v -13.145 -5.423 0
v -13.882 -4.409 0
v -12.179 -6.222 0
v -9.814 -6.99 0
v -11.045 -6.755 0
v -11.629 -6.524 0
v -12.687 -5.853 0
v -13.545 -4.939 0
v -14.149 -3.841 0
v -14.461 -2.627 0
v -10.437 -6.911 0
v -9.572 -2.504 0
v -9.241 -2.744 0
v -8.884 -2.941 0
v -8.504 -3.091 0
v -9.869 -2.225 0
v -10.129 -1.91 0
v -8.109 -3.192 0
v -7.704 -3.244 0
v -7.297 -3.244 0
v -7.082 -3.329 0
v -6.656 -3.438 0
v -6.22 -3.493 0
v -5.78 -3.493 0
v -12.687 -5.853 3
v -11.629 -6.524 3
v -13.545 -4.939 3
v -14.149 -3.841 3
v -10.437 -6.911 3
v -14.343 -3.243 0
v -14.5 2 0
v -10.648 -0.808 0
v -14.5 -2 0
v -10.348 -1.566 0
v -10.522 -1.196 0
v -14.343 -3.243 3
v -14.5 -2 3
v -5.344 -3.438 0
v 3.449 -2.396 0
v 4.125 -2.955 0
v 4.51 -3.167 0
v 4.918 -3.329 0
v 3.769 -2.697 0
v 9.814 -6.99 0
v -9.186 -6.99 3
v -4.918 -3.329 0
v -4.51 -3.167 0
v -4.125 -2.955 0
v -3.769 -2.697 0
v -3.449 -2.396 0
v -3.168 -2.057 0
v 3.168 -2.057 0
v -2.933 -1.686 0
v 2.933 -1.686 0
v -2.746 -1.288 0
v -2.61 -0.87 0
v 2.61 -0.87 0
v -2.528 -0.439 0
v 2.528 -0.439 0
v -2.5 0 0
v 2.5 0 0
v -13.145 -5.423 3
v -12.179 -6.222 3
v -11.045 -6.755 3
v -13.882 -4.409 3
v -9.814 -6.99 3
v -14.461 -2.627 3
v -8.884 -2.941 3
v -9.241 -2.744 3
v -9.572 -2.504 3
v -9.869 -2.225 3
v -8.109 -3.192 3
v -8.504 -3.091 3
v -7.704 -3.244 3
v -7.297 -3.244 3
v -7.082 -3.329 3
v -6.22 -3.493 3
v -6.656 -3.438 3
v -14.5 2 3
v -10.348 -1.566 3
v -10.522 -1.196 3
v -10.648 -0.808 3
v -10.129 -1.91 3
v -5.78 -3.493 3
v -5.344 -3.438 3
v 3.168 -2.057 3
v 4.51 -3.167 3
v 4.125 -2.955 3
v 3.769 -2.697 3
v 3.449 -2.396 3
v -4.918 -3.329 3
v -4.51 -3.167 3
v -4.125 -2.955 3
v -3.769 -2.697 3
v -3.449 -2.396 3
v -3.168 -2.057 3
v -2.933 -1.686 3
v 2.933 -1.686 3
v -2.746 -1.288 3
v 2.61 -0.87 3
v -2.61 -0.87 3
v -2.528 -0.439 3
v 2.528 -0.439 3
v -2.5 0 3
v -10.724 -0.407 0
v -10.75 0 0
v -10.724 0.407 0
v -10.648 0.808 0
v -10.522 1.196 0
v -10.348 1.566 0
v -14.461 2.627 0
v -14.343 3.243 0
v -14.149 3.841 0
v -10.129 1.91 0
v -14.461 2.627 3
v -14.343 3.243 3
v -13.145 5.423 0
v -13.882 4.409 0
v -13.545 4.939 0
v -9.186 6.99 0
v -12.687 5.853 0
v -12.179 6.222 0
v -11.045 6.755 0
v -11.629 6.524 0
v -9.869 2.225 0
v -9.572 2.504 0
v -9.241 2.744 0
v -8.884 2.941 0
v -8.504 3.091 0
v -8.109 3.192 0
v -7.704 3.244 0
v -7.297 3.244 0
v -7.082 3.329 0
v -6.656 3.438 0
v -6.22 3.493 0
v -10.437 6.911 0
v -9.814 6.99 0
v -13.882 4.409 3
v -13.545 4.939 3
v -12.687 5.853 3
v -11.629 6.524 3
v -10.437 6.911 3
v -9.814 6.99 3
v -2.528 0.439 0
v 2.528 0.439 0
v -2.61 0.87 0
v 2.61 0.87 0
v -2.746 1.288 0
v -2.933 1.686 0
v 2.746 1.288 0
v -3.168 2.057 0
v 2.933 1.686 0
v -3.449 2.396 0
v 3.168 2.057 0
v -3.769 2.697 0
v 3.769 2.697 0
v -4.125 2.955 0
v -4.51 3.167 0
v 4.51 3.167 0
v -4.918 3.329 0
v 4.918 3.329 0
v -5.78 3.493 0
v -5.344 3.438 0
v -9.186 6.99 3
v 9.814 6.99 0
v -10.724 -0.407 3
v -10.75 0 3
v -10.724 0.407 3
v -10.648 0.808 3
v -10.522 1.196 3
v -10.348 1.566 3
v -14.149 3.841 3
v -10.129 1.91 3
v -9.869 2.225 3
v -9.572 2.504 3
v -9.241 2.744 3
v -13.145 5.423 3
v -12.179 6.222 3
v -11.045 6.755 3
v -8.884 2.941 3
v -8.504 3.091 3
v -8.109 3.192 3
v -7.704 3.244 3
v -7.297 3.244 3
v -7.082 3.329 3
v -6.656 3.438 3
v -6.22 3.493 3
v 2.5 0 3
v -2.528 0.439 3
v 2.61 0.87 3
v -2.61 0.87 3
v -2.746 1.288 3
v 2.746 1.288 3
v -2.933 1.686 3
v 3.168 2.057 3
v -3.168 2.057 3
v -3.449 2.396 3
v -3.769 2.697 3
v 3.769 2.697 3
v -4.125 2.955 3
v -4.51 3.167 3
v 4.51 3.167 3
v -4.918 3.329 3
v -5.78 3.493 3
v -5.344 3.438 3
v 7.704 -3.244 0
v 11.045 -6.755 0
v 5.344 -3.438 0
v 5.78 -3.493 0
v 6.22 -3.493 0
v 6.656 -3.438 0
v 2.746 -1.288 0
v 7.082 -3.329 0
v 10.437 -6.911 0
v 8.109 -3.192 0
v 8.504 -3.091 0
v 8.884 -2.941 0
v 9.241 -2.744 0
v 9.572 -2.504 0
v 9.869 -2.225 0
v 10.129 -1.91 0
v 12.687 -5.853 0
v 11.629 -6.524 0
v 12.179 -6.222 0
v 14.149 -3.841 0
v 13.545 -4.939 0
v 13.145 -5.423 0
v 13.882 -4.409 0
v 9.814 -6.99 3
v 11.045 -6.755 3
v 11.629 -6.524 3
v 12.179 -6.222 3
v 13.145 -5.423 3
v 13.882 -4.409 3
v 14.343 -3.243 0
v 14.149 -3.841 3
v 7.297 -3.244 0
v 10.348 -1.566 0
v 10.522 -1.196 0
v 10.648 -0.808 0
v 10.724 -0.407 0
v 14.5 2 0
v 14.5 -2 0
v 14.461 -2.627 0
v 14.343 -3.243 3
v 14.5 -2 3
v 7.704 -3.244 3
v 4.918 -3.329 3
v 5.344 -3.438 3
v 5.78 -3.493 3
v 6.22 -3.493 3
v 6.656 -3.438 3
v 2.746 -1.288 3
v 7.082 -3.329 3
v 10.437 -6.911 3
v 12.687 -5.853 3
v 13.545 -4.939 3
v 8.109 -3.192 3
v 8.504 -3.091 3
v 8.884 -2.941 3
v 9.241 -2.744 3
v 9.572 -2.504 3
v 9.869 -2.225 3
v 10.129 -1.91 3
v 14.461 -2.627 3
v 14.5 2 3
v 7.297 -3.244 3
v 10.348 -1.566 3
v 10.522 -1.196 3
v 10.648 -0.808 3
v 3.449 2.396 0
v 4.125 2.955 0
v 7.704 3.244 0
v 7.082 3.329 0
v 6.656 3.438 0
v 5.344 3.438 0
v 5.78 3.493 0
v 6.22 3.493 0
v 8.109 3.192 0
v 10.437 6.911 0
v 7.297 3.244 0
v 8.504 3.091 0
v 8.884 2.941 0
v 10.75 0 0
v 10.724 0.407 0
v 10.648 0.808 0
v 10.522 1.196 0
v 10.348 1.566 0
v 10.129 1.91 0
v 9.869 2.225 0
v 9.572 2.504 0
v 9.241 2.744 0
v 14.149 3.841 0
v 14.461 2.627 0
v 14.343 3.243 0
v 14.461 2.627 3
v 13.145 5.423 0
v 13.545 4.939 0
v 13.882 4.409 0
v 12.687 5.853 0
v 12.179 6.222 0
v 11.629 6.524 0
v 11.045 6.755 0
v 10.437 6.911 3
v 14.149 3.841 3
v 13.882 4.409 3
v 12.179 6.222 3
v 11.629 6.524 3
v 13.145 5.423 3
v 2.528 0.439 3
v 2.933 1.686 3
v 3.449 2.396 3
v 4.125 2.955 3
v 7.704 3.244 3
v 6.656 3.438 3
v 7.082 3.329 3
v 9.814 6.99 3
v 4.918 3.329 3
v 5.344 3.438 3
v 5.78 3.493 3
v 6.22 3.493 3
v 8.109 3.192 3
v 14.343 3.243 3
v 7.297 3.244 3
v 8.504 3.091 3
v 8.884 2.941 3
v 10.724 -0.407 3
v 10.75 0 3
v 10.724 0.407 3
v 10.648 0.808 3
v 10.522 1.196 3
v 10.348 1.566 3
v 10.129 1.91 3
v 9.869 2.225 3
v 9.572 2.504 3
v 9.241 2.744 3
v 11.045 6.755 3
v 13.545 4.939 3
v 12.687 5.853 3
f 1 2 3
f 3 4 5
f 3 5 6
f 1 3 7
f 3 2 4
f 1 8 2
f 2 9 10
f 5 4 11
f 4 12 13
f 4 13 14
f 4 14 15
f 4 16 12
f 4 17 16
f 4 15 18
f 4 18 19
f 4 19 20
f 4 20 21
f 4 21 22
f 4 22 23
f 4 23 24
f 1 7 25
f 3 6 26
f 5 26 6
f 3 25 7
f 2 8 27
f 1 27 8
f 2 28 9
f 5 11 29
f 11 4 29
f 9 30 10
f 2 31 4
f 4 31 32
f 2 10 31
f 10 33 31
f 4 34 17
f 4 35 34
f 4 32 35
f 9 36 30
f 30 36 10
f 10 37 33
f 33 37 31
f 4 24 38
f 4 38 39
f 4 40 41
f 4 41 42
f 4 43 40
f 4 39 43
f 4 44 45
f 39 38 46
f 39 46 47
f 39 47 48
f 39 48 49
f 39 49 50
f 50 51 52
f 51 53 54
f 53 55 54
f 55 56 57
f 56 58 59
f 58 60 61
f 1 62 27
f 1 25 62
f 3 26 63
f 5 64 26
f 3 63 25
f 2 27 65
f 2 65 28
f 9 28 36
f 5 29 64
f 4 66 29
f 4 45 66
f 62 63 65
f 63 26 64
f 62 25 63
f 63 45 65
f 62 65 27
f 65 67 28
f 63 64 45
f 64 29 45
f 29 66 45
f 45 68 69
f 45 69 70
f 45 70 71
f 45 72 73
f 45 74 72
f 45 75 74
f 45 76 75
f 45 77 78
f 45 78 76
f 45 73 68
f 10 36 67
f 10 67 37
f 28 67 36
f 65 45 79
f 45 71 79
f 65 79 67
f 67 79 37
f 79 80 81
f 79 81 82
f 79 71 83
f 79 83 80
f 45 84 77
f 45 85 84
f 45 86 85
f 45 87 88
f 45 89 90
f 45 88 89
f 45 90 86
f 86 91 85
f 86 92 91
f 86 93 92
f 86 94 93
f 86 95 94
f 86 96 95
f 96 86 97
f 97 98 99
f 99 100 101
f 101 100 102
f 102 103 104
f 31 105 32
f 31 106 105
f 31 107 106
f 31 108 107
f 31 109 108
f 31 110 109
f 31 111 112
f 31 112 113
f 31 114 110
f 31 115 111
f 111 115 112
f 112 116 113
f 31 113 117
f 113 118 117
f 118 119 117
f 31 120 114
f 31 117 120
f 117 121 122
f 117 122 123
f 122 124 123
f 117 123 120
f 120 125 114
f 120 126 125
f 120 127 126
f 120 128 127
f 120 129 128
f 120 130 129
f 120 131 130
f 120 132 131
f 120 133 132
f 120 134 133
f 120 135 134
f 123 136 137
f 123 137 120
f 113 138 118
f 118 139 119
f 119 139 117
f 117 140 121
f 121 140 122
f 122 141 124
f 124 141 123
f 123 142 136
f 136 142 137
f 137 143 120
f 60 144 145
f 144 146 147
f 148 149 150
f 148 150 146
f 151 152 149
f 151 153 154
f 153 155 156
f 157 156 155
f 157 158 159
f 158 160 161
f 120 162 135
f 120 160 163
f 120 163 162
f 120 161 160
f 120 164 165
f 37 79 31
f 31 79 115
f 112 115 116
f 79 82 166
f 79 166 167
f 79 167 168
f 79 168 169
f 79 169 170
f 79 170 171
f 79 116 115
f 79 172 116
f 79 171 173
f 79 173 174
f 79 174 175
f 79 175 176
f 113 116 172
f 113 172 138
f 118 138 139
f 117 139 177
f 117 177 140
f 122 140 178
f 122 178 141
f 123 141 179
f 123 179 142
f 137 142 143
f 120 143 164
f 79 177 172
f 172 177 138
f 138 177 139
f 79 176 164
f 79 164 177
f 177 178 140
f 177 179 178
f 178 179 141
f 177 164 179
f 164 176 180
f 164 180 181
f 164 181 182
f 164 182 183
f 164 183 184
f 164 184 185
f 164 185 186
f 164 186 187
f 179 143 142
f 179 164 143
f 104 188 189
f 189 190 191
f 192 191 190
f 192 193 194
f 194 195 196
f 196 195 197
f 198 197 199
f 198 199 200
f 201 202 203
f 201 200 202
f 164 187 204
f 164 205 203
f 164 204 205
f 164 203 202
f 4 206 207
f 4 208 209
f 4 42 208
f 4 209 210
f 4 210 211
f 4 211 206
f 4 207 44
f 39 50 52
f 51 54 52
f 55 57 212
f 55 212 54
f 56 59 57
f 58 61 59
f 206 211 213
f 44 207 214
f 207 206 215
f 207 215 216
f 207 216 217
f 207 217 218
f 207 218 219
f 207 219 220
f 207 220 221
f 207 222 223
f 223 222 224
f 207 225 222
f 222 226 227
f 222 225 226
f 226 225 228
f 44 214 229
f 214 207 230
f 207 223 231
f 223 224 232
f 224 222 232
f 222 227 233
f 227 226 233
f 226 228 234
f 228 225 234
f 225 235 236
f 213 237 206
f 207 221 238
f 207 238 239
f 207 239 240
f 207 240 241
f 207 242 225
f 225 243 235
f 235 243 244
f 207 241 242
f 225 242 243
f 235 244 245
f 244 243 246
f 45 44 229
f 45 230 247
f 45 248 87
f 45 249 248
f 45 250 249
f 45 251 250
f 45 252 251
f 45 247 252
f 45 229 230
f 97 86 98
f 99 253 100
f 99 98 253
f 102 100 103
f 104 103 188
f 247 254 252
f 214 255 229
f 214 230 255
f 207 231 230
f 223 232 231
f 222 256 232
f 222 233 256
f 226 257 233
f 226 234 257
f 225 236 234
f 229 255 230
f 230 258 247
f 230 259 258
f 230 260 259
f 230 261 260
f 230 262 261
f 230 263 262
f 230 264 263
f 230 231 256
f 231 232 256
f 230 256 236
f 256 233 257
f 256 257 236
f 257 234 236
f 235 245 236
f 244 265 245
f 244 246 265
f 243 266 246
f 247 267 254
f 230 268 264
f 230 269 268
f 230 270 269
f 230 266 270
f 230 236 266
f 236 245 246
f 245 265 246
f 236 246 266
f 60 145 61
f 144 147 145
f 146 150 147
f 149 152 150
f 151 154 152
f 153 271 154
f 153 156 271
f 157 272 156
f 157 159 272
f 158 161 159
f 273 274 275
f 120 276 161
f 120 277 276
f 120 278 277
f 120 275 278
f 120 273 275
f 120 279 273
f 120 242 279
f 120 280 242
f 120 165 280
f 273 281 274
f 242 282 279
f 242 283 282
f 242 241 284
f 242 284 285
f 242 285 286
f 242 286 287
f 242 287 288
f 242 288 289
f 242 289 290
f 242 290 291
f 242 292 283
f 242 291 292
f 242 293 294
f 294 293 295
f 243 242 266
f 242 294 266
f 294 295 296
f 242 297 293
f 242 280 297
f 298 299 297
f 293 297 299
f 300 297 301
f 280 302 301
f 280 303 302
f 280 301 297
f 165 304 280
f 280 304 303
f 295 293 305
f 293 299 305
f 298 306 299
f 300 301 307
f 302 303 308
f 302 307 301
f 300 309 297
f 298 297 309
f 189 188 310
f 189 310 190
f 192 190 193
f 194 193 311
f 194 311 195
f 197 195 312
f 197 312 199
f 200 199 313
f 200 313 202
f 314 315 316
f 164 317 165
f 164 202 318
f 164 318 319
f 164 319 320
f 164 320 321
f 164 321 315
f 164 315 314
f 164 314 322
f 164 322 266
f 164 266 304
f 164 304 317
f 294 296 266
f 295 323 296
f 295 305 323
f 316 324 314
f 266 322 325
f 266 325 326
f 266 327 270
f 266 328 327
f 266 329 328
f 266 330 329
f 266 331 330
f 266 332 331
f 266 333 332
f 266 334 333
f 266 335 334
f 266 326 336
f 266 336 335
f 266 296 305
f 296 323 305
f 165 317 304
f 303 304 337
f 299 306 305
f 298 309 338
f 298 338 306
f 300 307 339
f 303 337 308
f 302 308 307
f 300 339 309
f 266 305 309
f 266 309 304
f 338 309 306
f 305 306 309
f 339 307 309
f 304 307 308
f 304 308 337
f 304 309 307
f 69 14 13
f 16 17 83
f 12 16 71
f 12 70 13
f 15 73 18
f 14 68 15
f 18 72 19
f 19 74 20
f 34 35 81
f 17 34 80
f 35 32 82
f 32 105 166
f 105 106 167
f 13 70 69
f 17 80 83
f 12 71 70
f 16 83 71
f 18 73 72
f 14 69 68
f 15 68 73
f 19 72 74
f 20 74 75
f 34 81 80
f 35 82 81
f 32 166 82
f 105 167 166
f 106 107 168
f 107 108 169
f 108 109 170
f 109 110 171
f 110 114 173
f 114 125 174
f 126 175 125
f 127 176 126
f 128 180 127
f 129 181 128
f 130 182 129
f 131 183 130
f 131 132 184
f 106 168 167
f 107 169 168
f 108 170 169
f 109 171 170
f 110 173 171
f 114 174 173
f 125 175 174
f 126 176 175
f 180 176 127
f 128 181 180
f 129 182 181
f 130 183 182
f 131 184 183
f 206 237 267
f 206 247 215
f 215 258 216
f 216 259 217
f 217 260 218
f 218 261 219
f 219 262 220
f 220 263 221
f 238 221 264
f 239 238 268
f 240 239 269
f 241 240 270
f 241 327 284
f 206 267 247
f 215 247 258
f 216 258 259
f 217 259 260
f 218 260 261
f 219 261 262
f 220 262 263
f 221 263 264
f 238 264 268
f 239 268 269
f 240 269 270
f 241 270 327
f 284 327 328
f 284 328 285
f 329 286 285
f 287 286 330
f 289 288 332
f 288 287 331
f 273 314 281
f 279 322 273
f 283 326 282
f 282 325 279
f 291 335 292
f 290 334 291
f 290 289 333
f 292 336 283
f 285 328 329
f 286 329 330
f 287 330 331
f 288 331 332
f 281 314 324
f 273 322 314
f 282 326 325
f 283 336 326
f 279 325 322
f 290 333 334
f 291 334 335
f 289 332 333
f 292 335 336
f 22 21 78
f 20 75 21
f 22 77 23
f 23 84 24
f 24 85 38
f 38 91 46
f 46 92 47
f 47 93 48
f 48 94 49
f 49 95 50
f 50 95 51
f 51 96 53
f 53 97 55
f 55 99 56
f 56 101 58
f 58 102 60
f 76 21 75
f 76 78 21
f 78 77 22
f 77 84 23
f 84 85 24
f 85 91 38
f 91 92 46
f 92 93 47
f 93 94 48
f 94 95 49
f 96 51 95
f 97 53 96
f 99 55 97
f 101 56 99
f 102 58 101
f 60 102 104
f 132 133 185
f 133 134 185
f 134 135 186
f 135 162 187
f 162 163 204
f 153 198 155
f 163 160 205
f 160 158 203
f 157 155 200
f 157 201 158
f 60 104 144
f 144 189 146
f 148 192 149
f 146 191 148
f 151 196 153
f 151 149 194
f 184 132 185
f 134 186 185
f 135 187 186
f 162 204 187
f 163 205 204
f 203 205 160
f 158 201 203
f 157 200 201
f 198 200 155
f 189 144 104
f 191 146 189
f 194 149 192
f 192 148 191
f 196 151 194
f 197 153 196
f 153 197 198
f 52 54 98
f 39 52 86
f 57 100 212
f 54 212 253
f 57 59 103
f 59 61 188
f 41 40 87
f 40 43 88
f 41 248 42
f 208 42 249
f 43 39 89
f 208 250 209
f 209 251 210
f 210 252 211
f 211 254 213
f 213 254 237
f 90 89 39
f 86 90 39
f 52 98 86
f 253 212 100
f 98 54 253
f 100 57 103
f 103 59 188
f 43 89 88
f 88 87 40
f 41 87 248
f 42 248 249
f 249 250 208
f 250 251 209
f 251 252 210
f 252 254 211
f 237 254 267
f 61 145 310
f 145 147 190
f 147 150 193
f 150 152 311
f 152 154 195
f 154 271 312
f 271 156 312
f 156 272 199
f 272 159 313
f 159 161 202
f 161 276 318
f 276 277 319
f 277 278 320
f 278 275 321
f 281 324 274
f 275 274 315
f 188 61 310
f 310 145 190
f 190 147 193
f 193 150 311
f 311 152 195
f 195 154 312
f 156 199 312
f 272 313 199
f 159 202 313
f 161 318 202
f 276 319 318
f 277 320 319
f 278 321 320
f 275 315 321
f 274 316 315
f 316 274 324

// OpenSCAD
$fn = 50;

difference() {
	union() {
		hull() {
			translate(v = [-9.5, 2.0, 0]) {
				cylinder(h = 3, r = 5);
			}
			translate(v = [9.5, 2.0, 0]) {
				cylinder(h = 3, r = 5);
			}
			translate(v = [-9.5, -2.0, 0]) {
				cylinder(h = 3, r = 5);
			}
			translate(v = [9.5, -2.0, 0]) {
				cylinder(h = 3, r = 5);
			}
		}
	}
	union() {
		translate(v = [-7.5, 0.0, -100.0]) {
			cylinder(h = 200, r = 3.25);
		}
		translate(v = [7.5, 0.0, -100.0]) {
			cylinder(h = 200, r = 3.25);
		}
		translate(v = [-7.5, 0.0, -100.0]) {
			cylinder(h = 200, r = 1.8);
		}
		translate(v = [7.5, 0.0, -100.0]) {
			cylinder(h = 200, r = 1.8);
		}
		translate(v = [-6.0, 0, 0.0]) {
			cylinder(h = 3, r = 3.5);
		}
		translate(v = [6.0, 0, 0.0]) {
			cylinder(h = 3, r = 3.5);
		}
	}
}
